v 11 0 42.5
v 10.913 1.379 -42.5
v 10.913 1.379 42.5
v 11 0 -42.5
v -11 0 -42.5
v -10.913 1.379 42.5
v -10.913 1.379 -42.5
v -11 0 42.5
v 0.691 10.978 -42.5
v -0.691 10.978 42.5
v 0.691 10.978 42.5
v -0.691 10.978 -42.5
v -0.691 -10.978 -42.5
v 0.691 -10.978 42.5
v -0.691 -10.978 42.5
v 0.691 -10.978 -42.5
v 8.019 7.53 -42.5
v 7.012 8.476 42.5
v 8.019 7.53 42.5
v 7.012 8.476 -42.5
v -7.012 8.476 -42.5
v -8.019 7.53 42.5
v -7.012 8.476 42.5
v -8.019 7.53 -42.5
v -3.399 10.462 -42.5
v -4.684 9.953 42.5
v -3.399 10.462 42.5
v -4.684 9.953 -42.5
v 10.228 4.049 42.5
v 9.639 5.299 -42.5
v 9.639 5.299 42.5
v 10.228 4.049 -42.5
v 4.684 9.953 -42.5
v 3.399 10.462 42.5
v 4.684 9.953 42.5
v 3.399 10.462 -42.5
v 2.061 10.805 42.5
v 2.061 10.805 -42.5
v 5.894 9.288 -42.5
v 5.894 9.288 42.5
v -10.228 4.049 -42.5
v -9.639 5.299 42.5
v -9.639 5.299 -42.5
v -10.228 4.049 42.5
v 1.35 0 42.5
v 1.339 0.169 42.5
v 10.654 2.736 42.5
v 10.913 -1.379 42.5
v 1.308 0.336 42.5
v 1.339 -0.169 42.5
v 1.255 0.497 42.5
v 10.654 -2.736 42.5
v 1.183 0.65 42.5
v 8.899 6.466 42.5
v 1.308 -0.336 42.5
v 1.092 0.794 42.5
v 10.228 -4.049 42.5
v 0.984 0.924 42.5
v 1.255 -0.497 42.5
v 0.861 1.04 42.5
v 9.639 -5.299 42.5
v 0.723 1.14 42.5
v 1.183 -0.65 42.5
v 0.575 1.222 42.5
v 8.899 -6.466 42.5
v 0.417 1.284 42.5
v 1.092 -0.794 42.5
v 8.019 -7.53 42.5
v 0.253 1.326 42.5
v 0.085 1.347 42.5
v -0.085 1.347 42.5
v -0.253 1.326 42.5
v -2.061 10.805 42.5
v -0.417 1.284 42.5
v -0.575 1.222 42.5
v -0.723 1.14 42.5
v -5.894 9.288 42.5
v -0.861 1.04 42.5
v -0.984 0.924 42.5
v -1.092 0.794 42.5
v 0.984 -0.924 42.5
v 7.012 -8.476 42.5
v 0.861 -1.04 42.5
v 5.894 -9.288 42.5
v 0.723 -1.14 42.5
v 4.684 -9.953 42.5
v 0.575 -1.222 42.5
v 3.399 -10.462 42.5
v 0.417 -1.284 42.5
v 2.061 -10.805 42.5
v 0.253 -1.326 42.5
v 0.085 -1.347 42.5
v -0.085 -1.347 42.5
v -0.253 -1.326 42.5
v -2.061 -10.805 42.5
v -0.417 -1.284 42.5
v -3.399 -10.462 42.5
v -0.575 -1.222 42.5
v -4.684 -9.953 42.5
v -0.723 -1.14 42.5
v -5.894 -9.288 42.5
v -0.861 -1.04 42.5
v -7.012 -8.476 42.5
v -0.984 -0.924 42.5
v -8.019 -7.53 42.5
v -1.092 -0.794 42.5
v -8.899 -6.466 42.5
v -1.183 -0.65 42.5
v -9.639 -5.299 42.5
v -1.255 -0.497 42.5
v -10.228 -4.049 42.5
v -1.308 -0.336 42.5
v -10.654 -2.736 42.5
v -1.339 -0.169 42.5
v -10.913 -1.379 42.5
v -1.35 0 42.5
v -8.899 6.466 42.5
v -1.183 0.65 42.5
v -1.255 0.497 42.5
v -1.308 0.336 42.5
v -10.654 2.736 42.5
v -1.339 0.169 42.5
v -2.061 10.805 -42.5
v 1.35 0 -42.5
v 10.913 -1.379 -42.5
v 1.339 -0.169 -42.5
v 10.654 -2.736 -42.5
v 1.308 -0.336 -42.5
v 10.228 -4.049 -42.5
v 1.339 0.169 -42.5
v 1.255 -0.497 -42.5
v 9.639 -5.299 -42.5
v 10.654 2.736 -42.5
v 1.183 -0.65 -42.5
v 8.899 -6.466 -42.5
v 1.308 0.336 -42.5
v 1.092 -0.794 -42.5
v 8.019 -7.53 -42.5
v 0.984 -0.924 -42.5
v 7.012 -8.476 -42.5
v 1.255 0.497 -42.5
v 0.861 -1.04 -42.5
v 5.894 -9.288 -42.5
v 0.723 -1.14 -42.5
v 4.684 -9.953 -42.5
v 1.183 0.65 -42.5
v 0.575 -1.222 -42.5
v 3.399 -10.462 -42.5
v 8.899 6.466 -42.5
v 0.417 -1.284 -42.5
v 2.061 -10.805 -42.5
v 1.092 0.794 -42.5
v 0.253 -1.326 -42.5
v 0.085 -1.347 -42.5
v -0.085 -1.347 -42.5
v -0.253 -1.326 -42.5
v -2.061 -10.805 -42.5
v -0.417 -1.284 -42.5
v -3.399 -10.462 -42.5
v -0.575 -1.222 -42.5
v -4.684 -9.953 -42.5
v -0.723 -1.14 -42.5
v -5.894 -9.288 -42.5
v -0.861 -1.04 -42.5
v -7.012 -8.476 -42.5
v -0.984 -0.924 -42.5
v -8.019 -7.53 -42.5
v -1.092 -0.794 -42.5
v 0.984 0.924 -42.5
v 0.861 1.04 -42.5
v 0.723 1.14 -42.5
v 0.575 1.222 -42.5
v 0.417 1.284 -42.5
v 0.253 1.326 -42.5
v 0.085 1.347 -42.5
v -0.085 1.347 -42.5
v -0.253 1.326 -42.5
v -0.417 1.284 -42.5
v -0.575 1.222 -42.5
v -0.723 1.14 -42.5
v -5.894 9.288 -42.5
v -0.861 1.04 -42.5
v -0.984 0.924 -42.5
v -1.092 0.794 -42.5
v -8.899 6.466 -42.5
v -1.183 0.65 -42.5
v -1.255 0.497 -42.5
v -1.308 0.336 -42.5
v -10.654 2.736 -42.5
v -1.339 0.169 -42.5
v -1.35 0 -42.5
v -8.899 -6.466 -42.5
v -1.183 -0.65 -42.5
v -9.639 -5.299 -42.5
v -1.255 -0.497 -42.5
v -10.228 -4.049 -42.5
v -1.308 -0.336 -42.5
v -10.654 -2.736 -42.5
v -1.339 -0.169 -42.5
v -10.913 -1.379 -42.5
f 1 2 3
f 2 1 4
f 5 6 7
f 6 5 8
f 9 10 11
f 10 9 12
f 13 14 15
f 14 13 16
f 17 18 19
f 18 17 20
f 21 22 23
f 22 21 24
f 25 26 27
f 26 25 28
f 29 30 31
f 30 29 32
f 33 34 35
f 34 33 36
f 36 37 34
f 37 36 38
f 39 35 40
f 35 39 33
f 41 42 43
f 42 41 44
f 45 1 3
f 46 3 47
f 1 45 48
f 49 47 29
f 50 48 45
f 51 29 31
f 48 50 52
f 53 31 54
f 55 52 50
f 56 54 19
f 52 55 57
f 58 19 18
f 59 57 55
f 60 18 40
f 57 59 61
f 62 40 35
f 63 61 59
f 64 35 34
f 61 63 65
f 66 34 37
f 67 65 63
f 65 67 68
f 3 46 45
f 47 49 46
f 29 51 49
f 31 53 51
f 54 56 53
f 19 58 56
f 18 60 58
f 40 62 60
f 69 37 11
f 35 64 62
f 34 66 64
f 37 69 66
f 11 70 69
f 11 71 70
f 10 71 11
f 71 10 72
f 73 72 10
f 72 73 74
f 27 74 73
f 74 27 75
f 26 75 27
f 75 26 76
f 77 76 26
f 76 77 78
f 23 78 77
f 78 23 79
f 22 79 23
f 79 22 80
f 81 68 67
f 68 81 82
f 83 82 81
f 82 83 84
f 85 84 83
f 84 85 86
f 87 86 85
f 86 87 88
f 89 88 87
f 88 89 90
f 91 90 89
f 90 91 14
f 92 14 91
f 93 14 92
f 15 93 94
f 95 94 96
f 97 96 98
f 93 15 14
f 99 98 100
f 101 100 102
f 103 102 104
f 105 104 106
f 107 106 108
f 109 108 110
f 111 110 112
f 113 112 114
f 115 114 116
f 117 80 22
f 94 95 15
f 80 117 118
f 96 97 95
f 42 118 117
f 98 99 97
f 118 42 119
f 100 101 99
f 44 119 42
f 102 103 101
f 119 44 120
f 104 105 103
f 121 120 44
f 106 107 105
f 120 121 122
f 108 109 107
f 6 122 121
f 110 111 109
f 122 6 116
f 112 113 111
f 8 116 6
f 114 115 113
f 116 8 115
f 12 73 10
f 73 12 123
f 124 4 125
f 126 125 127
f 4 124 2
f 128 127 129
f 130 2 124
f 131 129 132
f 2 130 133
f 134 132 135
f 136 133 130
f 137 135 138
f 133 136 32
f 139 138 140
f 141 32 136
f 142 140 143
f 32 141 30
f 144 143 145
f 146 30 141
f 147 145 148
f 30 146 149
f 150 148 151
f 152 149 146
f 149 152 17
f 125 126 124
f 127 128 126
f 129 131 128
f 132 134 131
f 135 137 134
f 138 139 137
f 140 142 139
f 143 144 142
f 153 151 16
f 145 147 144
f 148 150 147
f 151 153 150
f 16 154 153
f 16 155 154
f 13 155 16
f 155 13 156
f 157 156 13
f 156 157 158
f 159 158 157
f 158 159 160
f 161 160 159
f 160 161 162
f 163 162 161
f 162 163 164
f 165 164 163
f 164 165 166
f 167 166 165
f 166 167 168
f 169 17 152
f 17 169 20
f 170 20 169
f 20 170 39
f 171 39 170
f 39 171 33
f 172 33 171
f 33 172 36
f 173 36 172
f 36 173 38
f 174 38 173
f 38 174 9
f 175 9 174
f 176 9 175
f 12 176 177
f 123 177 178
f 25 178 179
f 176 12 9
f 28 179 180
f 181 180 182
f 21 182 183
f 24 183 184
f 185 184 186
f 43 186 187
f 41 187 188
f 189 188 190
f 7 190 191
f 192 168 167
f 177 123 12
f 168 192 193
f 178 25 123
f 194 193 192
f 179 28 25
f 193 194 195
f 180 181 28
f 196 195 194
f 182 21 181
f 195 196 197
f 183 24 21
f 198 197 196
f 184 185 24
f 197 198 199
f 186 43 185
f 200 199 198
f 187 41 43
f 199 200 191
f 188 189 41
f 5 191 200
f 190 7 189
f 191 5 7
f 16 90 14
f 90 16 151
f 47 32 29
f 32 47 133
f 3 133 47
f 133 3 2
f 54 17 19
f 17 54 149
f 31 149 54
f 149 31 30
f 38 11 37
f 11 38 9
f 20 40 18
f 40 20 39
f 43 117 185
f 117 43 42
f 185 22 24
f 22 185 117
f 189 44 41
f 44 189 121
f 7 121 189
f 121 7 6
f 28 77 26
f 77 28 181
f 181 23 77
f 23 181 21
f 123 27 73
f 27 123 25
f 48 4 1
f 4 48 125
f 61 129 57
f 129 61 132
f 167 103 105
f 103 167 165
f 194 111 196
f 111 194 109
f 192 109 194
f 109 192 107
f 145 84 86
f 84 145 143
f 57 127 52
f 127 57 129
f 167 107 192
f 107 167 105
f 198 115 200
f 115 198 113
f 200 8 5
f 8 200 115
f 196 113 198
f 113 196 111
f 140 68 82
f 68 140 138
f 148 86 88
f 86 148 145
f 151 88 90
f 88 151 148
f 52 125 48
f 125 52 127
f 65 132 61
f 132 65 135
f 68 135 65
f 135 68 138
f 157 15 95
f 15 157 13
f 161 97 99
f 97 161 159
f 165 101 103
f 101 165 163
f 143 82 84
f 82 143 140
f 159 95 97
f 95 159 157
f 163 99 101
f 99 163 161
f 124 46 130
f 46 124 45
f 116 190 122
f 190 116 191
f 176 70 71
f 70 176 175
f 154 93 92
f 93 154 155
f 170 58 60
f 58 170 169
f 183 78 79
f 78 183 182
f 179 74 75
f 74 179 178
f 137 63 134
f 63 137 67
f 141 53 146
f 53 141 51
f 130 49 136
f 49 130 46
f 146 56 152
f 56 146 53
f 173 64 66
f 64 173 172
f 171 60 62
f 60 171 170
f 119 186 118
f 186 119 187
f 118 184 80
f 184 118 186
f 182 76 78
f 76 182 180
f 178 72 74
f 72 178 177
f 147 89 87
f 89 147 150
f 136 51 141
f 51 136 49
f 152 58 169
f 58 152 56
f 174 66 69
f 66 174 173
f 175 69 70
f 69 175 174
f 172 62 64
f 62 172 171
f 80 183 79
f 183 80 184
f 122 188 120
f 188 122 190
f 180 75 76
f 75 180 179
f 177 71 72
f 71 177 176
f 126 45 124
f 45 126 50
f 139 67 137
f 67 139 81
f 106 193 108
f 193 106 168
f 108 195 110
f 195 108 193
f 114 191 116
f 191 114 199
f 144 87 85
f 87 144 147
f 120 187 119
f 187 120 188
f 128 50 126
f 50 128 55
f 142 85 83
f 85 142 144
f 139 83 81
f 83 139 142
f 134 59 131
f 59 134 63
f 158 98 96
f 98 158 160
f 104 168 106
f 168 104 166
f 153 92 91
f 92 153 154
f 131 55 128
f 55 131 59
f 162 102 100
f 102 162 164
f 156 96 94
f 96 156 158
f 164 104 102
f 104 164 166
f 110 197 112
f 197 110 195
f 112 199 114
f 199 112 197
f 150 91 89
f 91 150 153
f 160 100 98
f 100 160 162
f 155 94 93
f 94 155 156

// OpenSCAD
$fn = 50;


difference() {
	union() {
		translate(v = [0, 0, -42.5000000000]) {
			cylinder(h = 85, r = 11.0000000000);
		}
	}
	union() {
		translate(v = [0, 0, -100.0000000000]) {
			cylinder(h = 200, r = 1.3500000000);
		}
	}
}
